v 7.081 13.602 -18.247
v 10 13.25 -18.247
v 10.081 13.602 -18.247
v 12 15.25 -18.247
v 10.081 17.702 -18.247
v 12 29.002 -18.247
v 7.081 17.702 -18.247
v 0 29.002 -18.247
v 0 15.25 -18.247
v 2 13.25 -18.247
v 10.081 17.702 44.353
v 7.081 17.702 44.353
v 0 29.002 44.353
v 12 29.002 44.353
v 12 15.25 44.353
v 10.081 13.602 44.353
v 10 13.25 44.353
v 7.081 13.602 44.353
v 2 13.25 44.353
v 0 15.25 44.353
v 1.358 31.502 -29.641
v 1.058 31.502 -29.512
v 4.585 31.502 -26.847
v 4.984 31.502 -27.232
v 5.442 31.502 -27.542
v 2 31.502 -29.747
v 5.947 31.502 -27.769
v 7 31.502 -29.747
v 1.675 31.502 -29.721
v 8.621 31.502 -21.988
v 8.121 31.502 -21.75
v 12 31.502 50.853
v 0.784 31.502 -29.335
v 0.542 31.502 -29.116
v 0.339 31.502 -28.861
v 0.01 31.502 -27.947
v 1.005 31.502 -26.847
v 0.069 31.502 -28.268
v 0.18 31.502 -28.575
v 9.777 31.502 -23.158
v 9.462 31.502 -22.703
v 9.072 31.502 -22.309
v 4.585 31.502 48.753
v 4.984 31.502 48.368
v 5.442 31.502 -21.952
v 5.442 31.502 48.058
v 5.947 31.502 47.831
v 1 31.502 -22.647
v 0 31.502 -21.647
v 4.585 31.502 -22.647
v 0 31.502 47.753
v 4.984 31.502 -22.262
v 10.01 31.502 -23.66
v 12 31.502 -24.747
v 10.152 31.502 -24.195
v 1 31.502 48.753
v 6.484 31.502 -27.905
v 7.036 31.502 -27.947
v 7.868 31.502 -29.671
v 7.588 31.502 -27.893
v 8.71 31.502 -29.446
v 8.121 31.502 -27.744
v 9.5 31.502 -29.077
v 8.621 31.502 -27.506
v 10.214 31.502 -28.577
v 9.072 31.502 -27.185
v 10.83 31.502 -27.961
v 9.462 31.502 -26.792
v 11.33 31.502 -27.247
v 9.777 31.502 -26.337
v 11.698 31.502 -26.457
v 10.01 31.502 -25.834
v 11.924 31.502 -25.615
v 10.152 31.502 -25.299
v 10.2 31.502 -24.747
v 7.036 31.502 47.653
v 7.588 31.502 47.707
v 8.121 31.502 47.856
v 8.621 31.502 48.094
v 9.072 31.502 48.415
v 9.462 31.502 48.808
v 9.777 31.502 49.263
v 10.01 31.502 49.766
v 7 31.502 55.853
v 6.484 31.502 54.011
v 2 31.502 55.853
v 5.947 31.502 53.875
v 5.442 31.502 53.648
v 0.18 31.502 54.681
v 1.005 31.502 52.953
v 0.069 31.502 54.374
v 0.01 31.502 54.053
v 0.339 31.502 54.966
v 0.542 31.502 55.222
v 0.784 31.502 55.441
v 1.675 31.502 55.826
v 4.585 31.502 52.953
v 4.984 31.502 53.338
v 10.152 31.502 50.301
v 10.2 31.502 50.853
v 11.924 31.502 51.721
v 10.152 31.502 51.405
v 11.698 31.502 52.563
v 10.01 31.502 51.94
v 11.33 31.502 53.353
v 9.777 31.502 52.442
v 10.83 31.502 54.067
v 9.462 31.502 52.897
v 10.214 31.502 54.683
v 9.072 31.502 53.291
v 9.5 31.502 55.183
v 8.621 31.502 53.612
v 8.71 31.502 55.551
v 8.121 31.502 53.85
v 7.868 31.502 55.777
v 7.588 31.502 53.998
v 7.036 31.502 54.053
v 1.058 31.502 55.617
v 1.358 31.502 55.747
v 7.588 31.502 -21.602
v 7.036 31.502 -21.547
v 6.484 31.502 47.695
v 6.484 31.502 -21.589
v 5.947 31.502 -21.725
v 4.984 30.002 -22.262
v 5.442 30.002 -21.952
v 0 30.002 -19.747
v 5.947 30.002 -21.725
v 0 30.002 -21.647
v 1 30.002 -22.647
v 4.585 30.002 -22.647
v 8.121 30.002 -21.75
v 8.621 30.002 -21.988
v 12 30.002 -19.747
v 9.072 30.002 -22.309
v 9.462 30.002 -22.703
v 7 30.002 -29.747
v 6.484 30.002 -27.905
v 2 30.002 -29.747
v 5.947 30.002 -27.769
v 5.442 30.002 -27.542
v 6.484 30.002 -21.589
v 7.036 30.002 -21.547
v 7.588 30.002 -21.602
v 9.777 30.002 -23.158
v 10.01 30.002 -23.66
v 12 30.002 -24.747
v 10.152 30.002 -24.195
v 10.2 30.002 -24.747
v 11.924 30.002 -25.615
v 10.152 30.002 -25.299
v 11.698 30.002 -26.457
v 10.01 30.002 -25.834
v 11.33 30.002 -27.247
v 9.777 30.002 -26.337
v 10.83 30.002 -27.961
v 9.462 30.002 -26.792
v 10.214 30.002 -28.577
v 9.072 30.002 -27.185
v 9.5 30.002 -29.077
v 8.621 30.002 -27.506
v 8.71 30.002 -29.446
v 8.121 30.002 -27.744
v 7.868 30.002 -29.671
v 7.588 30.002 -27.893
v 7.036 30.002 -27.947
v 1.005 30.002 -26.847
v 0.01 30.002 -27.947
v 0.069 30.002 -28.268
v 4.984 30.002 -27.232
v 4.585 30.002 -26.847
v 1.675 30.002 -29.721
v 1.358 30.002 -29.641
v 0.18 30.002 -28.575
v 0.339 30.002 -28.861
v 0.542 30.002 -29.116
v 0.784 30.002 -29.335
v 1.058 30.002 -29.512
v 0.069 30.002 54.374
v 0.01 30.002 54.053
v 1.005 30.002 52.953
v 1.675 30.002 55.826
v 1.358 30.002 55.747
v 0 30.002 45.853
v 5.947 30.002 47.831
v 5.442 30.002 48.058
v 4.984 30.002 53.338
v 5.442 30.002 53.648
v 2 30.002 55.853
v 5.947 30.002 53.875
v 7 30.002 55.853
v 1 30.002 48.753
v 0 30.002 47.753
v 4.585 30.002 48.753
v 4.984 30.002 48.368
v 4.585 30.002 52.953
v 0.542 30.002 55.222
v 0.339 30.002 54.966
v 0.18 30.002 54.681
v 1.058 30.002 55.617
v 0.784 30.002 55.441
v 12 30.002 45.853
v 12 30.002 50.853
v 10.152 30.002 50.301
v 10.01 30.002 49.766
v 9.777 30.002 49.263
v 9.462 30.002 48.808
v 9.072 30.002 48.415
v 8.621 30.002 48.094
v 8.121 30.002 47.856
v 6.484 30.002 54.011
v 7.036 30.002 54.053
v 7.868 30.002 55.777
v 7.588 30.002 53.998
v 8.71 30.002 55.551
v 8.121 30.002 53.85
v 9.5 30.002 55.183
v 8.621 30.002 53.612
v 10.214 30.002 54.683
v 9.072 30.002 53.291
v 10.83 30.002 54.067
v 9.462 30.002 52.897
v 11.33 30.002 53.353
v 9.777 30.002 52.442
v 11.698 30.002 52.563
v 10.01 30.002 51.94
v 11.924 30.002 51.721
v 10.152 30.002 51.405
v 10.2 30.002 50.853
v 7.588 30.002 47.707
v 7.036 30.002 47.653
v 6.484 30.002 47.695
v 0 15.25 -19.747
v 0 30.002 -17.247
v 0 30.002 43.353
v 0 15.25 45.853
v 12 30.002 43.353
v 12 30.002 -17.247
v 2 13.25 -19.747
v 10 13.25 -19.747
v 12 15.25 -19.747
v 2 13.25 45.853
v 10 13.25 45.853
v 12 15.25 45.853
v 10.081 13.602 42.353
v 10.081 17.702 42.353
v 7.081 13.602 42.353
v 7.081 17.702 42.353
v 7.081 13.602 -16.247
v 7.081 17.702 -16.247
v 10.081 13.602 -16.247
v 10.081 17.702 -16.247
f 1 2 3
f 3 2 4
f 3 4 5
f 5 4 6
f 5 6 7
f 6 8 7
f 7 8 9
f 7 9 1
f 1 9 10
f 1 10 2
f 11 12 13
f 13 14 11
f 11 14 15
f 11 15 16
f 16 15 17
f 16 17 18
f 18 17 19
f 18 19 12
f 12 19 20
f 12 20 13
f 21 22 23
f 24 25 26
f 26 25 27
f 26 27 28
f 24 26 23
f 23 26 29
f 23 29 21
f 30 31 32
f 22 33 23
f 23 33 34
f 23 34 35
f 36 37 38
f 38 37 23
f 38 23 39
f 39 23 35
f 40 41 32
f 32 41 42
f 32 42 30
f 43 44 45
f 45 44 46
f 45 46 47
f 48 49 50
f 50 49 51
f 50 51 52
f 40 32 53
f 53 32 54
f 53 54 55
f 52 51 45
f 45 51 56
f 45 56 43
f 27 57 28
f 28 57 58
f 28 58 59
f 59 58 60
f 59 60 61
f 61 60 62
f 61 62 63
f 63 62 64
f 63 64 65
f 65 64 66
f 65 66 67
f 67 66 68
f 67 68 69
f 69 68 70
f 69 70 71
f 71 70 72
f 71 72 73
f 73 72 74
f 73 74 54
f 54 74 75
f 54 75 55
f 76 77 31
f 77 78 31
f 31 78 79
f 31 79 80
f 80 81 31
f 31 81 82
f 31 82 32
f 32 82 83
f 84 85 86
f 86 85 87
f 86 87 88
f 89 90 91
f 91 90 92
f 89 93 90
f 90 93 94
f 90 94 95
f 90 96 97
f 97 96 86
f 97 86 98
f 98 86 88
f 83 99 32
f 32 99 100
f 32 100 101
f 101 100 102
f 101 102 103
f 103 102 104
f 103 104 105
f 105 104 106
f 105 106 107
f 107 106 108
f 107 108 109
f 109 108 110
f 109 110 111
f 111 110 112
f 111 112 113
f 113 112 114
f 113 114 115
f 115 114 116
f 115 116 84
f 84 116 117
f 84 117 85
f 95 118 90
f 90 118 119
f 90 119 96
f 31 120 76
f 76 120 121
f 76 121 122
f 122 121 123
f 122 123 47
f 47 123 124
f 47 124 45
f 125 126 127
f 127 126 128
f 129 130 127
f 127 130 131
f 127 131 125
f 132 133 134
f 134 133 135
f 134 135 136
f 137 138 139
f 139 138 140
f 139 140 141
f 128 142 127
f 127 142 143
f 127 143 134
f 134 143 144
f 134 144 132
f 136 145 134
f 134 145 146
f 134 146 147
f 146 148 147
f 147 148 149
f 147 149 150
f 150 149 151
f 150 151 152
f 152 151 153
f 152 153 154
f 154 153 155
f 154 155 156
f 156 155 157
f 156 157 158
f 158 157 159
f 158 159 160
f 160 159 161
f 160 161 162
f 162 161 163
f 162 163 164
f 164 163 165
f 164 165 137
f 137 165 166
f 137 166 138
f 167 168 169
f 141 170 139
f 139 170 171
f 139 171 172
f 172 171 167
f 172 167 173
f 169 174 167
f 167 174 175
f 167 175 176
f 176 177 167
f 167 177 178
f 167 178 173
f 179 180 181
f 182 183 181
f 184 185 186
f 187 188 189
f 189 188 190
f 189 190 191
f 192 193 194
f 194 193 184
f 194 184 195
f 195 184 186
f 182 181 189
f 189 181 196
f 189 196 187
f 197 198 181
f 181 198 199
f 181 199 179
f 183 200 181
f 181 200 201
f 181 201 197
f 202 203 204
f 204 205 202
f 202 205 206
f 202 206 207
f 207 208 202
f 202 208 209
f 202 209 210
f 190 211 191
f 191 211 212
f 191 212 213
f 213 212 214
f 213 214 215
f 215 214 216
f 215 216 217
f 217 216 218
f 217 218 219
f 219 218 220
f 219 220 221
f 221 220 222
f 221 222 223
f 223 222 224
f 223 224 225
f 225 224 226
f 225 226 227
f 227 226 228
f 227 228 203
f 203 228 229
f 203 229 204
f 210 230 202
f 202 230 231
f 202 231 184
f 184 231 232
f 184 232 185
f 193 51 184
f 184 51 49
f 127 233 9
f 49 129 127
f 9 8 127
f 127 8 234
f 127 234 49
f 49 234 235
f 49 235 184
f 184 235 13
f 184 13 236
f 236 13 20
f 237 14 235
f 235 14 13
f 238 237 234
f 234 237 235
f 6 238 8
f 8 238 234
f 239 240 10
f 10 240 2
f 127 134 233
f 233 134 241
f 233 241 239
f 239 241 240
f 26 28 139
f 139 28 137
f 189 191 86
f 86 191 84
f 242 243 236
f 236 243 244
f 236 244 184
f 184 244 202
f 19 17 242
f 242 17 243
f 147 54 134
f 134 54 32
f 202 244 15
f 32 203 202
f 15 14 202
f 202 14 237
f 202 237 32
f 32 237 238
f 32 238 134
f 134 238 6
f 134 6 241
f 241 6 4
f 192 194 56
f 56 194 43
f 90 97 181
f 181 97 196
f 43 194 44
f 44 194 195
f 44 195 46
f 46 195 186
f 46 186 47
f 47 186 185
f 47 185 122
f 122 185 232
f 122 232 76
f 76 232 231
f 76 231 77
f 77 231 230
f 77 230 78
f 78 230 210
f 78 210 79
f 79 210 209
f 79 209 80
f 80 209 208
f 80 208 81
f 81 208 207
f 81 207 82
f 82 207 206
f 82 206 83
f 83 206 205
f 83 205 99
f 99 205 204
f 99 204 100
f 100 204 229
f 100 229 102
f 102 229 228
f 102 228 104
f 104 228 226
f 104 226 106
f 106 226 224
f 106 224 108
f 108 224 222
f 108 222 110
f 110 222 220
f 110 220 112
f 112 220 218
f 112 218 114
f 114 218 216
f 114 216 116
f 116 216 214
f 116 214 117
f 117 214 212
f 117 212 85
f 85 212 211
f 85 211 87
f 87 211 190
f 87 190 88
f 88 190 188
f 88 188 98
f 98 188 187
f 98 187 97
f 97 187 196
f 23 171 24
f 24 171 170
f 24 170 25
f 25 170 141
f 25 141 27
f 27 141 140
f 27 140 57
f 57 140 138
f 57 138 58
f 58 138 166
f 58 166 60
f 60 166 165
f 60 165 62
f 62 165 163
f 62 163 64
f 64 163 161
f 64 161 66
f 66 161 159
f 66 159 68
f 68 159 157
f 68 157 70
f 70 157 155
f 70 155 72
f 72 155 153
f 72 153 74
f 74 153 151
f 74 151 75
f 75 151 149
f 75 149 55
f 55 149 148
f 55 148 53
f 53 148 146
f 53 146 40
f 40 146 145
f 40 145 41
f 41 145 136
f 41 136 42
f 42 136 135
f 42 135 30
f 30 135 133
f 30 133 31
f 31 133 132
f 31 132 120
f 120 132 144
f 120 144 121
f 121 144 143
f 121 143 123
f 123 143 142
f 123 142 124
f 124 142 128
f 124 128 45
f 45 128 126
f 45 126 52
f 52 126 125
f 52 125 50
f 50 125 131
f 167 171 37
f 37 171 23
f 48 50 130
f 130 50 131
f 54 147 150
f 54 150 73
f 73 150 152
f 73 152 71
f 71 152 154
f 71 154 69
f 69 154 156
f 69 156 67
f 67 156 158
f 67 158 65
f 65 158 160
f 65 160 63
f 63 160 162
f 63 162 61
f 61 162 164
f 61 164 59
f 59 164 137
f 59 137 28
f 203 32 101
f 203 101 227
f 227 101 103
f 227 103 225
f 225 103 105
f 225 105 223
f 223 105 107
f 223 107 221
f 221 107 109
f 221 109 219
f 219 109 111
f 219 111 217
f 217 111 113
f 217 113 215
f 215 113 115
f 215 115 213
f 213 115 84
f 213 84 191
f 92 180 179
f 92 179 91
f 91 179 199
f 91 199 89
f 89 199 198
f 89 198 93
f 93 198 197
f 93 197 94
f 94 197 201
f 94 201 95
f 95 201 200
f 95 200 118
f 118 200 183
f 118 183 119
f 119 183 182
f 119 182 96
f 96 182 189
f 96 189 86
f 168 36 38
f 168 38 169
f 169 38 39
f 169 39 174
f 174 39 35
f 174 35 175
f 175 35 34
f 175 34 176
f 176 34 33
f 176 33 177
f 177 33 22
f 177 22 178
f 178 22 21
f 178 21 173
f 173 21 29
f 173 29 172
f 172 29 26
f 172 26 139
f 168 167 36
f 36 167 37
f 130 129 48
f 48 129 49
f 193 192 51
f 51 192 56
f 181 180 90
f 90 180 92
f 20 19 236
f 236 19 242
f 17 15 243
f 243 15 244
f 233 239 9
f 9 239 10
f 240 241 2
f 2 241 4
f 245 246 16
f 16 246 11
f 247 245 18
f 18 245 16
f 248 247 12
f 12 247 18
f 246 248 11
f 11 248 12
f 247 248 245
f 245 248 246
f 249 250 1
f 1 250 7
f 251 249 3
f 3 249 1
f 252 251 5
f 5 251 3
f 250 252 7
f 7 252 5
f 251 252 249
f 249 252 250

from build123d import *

# Parameters (mm, degrees)
BOSS_EXTRUDE1_DEPTH = 12
CUT_EXTRUDE1_DEPTH  = 60.533114979
FILLET1_R           = 5
FILLET2_R           = 2
CHAMFER1_START      = 29
CHAMFER1_DEPTH      = 4
CHAMFER2_SIZE       = 2
SKETCH3_W           = 3
SKETCH3_H           = 4.1
BOSS_EXTRUDE2_DEPTH = 2
SKETCH4_W           = 3
SKETCH4_H           = 4.1
BOSS_EXTRUDE3_DEPTH = 2


with BuildPart() as part:
    # Sketch1 → Boss-Extrude1 (new body)
    with BuildSketch(Plane(origin=(0, 0, 0), x_dir=(0, 0, -1), z_dir=(1, 0, 0))):
        Polygon((-43.352838341, 30.002180144), (17.247161659, 30.002180144), (18.247161659, 29.002180144), (18.247161659, 13.2495019), (19.747161659, 13.2495019), (19.747161659, 30.002180144), (29.747161659, 30.002180144), (29.747161659, 31.502180144), (17.868482003, 31.502180144), (-43.974158684, 31.502180144), (-55.852838341, 31.502180144), (-55.852838341, 30.002180144), (-45.852838341, 30.002180144), (-45.852838341, 13.2495019), (-44.352838341, 13.2495019), (-44.352838341, 29.002180144), align=None)
    extrude(amount=BOSS_EXTRUDE1_DEPTH)

    # Sketch2 → Cut-Extrude1 (cut, through all)
    with BuildSketch(Plane.XZ.offset(-30.002180144)):
        with BuildLine():
            ThreePointArc((4.585460706, 48.752838341), (10.2, 50.852838341), (4.585460706, 52.952838341))
            Line((4.585460706, 52.952838341), (0, 52.952838341))
            Line((0, 52.952838341), (0, 48.752838341))
            Line((0, 48.752838341), (4.585460706, 48.752838341))
        make_face()
        with BuildLine():
            ThreePointArc((4.585460706, -22.647161659), (10.2, -24.747161659), (4.585460706, -26.847161659))
            Line((4.585460706, -26.847161659), (0, -26.847161659))
            Line((0, -26.847161659), (0, -22.647161659))
            Line((0, -22.647161659), (4.585460706, -22.647161659))
        make_face()
    extrude(amount=-CUT_EXTRUDE1_DEPTH, mode=Mode.SUBTRACT)

    # Fillet1
    fillet1_edges = [part.edges().sort_by_distance(p)[0] for p in [
        (12, 30.752180144, -29.747161659),
        (12, 30.752180144, 55.852838341),
    ]]
    fillet(fillet1_edges, radius=FILLET1_R)

    # Fillet2
    fillet2_edges = [part.edges().sort_by_distance(p)[0] for p in [
        (0, 30.752180144, 55.852838341),
        (0, 30.752180144, -29.747161659),
    ]]
    fillet(fillet2_edges, radius=FILLET2_R)

    # Chamfer1: read off the stored shape, not the designer's step
    # Chamfer1 outline → Chamfer1 (cut)
    with BuildSketch(Plane(origin=(0, 0, 0), x_dir=(1, 0, 0), z_dir=(0, 1, 0)).offset(CHAMFER1_START)):
        with BuildLine():
            Line((1.005012563, 26.847161659), (0.010025126, 27.947161659))
            ThreePointArc((0.010025126, 27.947161659), (0.002507854, 27.847287209), (0, 27.747161659))
            Line((0, 27.747161659), (0, 26.847161659))
            Line((0, 26.847161659), (1.005012563, 26.847161659))
        make_face()
        Polygon((0, 22.647161659), (0, 21.647161659), (1, 22.647161659), align=None)
        Polygon((1, -48.752838341), (0, -47.752838341), (0, -48.752838341), align=None)
        with BuildLine():
            ThreePointArc((0, -53.852838341), (0.002507854, -53.952963891), (0.010025126, -54.052838341))
            Line((0.010025126, -54.052838341), (1.005012563, -52.952838341))
            Line((1.005012563, -52.952838341), (0, -52.952838341))
            Line((0, -52.952838341), (0, -53.852838341))
        make_face()
    extrude(amount=CHAMFER1_DEPTH, mode=Mode.SUBTRACT)

    # Chamfer2
    chamfer2_edges = [part.edges().sort_by_distance(p)[0] for p in [
        (0, 13.2495019, 45.102838341),
        (12, 13.2495019, -18.997161659),
        (0, 13.2495019, -18.997161659),
        (12, 13.2495019, 45.102838341),
    ]]
    chamfer(chamfer2_edges, length=CHAMFER2_SIZE)

    # Sketch3 → Boss-Extrude2 (add)
    with BuildSketch(Plane(origin=(0, 0, 44.352838341), x_dir=(-1, 0, 0), z_dir=(0, 0, -1))):
        with Locations((-8.580589258, 15.652180144)):
            Rectangle(SKETCH3_W, SKETCH3_H)
    extrude(amount=BOSS_EXTRUDE2_DEPTH)

    # Sketch4 → Boss-Extrude3 (add)
    with BuildSketch(Plane.XY.offset(-18.247161659)):
        with Locations((8.580589258, 15.652180144)):
            Rectangle(SKETCH4_W, SKETCH4_H)
    extrude(amount=BOSS_EXTRUDE3_DEPTH)


solid = part.part
